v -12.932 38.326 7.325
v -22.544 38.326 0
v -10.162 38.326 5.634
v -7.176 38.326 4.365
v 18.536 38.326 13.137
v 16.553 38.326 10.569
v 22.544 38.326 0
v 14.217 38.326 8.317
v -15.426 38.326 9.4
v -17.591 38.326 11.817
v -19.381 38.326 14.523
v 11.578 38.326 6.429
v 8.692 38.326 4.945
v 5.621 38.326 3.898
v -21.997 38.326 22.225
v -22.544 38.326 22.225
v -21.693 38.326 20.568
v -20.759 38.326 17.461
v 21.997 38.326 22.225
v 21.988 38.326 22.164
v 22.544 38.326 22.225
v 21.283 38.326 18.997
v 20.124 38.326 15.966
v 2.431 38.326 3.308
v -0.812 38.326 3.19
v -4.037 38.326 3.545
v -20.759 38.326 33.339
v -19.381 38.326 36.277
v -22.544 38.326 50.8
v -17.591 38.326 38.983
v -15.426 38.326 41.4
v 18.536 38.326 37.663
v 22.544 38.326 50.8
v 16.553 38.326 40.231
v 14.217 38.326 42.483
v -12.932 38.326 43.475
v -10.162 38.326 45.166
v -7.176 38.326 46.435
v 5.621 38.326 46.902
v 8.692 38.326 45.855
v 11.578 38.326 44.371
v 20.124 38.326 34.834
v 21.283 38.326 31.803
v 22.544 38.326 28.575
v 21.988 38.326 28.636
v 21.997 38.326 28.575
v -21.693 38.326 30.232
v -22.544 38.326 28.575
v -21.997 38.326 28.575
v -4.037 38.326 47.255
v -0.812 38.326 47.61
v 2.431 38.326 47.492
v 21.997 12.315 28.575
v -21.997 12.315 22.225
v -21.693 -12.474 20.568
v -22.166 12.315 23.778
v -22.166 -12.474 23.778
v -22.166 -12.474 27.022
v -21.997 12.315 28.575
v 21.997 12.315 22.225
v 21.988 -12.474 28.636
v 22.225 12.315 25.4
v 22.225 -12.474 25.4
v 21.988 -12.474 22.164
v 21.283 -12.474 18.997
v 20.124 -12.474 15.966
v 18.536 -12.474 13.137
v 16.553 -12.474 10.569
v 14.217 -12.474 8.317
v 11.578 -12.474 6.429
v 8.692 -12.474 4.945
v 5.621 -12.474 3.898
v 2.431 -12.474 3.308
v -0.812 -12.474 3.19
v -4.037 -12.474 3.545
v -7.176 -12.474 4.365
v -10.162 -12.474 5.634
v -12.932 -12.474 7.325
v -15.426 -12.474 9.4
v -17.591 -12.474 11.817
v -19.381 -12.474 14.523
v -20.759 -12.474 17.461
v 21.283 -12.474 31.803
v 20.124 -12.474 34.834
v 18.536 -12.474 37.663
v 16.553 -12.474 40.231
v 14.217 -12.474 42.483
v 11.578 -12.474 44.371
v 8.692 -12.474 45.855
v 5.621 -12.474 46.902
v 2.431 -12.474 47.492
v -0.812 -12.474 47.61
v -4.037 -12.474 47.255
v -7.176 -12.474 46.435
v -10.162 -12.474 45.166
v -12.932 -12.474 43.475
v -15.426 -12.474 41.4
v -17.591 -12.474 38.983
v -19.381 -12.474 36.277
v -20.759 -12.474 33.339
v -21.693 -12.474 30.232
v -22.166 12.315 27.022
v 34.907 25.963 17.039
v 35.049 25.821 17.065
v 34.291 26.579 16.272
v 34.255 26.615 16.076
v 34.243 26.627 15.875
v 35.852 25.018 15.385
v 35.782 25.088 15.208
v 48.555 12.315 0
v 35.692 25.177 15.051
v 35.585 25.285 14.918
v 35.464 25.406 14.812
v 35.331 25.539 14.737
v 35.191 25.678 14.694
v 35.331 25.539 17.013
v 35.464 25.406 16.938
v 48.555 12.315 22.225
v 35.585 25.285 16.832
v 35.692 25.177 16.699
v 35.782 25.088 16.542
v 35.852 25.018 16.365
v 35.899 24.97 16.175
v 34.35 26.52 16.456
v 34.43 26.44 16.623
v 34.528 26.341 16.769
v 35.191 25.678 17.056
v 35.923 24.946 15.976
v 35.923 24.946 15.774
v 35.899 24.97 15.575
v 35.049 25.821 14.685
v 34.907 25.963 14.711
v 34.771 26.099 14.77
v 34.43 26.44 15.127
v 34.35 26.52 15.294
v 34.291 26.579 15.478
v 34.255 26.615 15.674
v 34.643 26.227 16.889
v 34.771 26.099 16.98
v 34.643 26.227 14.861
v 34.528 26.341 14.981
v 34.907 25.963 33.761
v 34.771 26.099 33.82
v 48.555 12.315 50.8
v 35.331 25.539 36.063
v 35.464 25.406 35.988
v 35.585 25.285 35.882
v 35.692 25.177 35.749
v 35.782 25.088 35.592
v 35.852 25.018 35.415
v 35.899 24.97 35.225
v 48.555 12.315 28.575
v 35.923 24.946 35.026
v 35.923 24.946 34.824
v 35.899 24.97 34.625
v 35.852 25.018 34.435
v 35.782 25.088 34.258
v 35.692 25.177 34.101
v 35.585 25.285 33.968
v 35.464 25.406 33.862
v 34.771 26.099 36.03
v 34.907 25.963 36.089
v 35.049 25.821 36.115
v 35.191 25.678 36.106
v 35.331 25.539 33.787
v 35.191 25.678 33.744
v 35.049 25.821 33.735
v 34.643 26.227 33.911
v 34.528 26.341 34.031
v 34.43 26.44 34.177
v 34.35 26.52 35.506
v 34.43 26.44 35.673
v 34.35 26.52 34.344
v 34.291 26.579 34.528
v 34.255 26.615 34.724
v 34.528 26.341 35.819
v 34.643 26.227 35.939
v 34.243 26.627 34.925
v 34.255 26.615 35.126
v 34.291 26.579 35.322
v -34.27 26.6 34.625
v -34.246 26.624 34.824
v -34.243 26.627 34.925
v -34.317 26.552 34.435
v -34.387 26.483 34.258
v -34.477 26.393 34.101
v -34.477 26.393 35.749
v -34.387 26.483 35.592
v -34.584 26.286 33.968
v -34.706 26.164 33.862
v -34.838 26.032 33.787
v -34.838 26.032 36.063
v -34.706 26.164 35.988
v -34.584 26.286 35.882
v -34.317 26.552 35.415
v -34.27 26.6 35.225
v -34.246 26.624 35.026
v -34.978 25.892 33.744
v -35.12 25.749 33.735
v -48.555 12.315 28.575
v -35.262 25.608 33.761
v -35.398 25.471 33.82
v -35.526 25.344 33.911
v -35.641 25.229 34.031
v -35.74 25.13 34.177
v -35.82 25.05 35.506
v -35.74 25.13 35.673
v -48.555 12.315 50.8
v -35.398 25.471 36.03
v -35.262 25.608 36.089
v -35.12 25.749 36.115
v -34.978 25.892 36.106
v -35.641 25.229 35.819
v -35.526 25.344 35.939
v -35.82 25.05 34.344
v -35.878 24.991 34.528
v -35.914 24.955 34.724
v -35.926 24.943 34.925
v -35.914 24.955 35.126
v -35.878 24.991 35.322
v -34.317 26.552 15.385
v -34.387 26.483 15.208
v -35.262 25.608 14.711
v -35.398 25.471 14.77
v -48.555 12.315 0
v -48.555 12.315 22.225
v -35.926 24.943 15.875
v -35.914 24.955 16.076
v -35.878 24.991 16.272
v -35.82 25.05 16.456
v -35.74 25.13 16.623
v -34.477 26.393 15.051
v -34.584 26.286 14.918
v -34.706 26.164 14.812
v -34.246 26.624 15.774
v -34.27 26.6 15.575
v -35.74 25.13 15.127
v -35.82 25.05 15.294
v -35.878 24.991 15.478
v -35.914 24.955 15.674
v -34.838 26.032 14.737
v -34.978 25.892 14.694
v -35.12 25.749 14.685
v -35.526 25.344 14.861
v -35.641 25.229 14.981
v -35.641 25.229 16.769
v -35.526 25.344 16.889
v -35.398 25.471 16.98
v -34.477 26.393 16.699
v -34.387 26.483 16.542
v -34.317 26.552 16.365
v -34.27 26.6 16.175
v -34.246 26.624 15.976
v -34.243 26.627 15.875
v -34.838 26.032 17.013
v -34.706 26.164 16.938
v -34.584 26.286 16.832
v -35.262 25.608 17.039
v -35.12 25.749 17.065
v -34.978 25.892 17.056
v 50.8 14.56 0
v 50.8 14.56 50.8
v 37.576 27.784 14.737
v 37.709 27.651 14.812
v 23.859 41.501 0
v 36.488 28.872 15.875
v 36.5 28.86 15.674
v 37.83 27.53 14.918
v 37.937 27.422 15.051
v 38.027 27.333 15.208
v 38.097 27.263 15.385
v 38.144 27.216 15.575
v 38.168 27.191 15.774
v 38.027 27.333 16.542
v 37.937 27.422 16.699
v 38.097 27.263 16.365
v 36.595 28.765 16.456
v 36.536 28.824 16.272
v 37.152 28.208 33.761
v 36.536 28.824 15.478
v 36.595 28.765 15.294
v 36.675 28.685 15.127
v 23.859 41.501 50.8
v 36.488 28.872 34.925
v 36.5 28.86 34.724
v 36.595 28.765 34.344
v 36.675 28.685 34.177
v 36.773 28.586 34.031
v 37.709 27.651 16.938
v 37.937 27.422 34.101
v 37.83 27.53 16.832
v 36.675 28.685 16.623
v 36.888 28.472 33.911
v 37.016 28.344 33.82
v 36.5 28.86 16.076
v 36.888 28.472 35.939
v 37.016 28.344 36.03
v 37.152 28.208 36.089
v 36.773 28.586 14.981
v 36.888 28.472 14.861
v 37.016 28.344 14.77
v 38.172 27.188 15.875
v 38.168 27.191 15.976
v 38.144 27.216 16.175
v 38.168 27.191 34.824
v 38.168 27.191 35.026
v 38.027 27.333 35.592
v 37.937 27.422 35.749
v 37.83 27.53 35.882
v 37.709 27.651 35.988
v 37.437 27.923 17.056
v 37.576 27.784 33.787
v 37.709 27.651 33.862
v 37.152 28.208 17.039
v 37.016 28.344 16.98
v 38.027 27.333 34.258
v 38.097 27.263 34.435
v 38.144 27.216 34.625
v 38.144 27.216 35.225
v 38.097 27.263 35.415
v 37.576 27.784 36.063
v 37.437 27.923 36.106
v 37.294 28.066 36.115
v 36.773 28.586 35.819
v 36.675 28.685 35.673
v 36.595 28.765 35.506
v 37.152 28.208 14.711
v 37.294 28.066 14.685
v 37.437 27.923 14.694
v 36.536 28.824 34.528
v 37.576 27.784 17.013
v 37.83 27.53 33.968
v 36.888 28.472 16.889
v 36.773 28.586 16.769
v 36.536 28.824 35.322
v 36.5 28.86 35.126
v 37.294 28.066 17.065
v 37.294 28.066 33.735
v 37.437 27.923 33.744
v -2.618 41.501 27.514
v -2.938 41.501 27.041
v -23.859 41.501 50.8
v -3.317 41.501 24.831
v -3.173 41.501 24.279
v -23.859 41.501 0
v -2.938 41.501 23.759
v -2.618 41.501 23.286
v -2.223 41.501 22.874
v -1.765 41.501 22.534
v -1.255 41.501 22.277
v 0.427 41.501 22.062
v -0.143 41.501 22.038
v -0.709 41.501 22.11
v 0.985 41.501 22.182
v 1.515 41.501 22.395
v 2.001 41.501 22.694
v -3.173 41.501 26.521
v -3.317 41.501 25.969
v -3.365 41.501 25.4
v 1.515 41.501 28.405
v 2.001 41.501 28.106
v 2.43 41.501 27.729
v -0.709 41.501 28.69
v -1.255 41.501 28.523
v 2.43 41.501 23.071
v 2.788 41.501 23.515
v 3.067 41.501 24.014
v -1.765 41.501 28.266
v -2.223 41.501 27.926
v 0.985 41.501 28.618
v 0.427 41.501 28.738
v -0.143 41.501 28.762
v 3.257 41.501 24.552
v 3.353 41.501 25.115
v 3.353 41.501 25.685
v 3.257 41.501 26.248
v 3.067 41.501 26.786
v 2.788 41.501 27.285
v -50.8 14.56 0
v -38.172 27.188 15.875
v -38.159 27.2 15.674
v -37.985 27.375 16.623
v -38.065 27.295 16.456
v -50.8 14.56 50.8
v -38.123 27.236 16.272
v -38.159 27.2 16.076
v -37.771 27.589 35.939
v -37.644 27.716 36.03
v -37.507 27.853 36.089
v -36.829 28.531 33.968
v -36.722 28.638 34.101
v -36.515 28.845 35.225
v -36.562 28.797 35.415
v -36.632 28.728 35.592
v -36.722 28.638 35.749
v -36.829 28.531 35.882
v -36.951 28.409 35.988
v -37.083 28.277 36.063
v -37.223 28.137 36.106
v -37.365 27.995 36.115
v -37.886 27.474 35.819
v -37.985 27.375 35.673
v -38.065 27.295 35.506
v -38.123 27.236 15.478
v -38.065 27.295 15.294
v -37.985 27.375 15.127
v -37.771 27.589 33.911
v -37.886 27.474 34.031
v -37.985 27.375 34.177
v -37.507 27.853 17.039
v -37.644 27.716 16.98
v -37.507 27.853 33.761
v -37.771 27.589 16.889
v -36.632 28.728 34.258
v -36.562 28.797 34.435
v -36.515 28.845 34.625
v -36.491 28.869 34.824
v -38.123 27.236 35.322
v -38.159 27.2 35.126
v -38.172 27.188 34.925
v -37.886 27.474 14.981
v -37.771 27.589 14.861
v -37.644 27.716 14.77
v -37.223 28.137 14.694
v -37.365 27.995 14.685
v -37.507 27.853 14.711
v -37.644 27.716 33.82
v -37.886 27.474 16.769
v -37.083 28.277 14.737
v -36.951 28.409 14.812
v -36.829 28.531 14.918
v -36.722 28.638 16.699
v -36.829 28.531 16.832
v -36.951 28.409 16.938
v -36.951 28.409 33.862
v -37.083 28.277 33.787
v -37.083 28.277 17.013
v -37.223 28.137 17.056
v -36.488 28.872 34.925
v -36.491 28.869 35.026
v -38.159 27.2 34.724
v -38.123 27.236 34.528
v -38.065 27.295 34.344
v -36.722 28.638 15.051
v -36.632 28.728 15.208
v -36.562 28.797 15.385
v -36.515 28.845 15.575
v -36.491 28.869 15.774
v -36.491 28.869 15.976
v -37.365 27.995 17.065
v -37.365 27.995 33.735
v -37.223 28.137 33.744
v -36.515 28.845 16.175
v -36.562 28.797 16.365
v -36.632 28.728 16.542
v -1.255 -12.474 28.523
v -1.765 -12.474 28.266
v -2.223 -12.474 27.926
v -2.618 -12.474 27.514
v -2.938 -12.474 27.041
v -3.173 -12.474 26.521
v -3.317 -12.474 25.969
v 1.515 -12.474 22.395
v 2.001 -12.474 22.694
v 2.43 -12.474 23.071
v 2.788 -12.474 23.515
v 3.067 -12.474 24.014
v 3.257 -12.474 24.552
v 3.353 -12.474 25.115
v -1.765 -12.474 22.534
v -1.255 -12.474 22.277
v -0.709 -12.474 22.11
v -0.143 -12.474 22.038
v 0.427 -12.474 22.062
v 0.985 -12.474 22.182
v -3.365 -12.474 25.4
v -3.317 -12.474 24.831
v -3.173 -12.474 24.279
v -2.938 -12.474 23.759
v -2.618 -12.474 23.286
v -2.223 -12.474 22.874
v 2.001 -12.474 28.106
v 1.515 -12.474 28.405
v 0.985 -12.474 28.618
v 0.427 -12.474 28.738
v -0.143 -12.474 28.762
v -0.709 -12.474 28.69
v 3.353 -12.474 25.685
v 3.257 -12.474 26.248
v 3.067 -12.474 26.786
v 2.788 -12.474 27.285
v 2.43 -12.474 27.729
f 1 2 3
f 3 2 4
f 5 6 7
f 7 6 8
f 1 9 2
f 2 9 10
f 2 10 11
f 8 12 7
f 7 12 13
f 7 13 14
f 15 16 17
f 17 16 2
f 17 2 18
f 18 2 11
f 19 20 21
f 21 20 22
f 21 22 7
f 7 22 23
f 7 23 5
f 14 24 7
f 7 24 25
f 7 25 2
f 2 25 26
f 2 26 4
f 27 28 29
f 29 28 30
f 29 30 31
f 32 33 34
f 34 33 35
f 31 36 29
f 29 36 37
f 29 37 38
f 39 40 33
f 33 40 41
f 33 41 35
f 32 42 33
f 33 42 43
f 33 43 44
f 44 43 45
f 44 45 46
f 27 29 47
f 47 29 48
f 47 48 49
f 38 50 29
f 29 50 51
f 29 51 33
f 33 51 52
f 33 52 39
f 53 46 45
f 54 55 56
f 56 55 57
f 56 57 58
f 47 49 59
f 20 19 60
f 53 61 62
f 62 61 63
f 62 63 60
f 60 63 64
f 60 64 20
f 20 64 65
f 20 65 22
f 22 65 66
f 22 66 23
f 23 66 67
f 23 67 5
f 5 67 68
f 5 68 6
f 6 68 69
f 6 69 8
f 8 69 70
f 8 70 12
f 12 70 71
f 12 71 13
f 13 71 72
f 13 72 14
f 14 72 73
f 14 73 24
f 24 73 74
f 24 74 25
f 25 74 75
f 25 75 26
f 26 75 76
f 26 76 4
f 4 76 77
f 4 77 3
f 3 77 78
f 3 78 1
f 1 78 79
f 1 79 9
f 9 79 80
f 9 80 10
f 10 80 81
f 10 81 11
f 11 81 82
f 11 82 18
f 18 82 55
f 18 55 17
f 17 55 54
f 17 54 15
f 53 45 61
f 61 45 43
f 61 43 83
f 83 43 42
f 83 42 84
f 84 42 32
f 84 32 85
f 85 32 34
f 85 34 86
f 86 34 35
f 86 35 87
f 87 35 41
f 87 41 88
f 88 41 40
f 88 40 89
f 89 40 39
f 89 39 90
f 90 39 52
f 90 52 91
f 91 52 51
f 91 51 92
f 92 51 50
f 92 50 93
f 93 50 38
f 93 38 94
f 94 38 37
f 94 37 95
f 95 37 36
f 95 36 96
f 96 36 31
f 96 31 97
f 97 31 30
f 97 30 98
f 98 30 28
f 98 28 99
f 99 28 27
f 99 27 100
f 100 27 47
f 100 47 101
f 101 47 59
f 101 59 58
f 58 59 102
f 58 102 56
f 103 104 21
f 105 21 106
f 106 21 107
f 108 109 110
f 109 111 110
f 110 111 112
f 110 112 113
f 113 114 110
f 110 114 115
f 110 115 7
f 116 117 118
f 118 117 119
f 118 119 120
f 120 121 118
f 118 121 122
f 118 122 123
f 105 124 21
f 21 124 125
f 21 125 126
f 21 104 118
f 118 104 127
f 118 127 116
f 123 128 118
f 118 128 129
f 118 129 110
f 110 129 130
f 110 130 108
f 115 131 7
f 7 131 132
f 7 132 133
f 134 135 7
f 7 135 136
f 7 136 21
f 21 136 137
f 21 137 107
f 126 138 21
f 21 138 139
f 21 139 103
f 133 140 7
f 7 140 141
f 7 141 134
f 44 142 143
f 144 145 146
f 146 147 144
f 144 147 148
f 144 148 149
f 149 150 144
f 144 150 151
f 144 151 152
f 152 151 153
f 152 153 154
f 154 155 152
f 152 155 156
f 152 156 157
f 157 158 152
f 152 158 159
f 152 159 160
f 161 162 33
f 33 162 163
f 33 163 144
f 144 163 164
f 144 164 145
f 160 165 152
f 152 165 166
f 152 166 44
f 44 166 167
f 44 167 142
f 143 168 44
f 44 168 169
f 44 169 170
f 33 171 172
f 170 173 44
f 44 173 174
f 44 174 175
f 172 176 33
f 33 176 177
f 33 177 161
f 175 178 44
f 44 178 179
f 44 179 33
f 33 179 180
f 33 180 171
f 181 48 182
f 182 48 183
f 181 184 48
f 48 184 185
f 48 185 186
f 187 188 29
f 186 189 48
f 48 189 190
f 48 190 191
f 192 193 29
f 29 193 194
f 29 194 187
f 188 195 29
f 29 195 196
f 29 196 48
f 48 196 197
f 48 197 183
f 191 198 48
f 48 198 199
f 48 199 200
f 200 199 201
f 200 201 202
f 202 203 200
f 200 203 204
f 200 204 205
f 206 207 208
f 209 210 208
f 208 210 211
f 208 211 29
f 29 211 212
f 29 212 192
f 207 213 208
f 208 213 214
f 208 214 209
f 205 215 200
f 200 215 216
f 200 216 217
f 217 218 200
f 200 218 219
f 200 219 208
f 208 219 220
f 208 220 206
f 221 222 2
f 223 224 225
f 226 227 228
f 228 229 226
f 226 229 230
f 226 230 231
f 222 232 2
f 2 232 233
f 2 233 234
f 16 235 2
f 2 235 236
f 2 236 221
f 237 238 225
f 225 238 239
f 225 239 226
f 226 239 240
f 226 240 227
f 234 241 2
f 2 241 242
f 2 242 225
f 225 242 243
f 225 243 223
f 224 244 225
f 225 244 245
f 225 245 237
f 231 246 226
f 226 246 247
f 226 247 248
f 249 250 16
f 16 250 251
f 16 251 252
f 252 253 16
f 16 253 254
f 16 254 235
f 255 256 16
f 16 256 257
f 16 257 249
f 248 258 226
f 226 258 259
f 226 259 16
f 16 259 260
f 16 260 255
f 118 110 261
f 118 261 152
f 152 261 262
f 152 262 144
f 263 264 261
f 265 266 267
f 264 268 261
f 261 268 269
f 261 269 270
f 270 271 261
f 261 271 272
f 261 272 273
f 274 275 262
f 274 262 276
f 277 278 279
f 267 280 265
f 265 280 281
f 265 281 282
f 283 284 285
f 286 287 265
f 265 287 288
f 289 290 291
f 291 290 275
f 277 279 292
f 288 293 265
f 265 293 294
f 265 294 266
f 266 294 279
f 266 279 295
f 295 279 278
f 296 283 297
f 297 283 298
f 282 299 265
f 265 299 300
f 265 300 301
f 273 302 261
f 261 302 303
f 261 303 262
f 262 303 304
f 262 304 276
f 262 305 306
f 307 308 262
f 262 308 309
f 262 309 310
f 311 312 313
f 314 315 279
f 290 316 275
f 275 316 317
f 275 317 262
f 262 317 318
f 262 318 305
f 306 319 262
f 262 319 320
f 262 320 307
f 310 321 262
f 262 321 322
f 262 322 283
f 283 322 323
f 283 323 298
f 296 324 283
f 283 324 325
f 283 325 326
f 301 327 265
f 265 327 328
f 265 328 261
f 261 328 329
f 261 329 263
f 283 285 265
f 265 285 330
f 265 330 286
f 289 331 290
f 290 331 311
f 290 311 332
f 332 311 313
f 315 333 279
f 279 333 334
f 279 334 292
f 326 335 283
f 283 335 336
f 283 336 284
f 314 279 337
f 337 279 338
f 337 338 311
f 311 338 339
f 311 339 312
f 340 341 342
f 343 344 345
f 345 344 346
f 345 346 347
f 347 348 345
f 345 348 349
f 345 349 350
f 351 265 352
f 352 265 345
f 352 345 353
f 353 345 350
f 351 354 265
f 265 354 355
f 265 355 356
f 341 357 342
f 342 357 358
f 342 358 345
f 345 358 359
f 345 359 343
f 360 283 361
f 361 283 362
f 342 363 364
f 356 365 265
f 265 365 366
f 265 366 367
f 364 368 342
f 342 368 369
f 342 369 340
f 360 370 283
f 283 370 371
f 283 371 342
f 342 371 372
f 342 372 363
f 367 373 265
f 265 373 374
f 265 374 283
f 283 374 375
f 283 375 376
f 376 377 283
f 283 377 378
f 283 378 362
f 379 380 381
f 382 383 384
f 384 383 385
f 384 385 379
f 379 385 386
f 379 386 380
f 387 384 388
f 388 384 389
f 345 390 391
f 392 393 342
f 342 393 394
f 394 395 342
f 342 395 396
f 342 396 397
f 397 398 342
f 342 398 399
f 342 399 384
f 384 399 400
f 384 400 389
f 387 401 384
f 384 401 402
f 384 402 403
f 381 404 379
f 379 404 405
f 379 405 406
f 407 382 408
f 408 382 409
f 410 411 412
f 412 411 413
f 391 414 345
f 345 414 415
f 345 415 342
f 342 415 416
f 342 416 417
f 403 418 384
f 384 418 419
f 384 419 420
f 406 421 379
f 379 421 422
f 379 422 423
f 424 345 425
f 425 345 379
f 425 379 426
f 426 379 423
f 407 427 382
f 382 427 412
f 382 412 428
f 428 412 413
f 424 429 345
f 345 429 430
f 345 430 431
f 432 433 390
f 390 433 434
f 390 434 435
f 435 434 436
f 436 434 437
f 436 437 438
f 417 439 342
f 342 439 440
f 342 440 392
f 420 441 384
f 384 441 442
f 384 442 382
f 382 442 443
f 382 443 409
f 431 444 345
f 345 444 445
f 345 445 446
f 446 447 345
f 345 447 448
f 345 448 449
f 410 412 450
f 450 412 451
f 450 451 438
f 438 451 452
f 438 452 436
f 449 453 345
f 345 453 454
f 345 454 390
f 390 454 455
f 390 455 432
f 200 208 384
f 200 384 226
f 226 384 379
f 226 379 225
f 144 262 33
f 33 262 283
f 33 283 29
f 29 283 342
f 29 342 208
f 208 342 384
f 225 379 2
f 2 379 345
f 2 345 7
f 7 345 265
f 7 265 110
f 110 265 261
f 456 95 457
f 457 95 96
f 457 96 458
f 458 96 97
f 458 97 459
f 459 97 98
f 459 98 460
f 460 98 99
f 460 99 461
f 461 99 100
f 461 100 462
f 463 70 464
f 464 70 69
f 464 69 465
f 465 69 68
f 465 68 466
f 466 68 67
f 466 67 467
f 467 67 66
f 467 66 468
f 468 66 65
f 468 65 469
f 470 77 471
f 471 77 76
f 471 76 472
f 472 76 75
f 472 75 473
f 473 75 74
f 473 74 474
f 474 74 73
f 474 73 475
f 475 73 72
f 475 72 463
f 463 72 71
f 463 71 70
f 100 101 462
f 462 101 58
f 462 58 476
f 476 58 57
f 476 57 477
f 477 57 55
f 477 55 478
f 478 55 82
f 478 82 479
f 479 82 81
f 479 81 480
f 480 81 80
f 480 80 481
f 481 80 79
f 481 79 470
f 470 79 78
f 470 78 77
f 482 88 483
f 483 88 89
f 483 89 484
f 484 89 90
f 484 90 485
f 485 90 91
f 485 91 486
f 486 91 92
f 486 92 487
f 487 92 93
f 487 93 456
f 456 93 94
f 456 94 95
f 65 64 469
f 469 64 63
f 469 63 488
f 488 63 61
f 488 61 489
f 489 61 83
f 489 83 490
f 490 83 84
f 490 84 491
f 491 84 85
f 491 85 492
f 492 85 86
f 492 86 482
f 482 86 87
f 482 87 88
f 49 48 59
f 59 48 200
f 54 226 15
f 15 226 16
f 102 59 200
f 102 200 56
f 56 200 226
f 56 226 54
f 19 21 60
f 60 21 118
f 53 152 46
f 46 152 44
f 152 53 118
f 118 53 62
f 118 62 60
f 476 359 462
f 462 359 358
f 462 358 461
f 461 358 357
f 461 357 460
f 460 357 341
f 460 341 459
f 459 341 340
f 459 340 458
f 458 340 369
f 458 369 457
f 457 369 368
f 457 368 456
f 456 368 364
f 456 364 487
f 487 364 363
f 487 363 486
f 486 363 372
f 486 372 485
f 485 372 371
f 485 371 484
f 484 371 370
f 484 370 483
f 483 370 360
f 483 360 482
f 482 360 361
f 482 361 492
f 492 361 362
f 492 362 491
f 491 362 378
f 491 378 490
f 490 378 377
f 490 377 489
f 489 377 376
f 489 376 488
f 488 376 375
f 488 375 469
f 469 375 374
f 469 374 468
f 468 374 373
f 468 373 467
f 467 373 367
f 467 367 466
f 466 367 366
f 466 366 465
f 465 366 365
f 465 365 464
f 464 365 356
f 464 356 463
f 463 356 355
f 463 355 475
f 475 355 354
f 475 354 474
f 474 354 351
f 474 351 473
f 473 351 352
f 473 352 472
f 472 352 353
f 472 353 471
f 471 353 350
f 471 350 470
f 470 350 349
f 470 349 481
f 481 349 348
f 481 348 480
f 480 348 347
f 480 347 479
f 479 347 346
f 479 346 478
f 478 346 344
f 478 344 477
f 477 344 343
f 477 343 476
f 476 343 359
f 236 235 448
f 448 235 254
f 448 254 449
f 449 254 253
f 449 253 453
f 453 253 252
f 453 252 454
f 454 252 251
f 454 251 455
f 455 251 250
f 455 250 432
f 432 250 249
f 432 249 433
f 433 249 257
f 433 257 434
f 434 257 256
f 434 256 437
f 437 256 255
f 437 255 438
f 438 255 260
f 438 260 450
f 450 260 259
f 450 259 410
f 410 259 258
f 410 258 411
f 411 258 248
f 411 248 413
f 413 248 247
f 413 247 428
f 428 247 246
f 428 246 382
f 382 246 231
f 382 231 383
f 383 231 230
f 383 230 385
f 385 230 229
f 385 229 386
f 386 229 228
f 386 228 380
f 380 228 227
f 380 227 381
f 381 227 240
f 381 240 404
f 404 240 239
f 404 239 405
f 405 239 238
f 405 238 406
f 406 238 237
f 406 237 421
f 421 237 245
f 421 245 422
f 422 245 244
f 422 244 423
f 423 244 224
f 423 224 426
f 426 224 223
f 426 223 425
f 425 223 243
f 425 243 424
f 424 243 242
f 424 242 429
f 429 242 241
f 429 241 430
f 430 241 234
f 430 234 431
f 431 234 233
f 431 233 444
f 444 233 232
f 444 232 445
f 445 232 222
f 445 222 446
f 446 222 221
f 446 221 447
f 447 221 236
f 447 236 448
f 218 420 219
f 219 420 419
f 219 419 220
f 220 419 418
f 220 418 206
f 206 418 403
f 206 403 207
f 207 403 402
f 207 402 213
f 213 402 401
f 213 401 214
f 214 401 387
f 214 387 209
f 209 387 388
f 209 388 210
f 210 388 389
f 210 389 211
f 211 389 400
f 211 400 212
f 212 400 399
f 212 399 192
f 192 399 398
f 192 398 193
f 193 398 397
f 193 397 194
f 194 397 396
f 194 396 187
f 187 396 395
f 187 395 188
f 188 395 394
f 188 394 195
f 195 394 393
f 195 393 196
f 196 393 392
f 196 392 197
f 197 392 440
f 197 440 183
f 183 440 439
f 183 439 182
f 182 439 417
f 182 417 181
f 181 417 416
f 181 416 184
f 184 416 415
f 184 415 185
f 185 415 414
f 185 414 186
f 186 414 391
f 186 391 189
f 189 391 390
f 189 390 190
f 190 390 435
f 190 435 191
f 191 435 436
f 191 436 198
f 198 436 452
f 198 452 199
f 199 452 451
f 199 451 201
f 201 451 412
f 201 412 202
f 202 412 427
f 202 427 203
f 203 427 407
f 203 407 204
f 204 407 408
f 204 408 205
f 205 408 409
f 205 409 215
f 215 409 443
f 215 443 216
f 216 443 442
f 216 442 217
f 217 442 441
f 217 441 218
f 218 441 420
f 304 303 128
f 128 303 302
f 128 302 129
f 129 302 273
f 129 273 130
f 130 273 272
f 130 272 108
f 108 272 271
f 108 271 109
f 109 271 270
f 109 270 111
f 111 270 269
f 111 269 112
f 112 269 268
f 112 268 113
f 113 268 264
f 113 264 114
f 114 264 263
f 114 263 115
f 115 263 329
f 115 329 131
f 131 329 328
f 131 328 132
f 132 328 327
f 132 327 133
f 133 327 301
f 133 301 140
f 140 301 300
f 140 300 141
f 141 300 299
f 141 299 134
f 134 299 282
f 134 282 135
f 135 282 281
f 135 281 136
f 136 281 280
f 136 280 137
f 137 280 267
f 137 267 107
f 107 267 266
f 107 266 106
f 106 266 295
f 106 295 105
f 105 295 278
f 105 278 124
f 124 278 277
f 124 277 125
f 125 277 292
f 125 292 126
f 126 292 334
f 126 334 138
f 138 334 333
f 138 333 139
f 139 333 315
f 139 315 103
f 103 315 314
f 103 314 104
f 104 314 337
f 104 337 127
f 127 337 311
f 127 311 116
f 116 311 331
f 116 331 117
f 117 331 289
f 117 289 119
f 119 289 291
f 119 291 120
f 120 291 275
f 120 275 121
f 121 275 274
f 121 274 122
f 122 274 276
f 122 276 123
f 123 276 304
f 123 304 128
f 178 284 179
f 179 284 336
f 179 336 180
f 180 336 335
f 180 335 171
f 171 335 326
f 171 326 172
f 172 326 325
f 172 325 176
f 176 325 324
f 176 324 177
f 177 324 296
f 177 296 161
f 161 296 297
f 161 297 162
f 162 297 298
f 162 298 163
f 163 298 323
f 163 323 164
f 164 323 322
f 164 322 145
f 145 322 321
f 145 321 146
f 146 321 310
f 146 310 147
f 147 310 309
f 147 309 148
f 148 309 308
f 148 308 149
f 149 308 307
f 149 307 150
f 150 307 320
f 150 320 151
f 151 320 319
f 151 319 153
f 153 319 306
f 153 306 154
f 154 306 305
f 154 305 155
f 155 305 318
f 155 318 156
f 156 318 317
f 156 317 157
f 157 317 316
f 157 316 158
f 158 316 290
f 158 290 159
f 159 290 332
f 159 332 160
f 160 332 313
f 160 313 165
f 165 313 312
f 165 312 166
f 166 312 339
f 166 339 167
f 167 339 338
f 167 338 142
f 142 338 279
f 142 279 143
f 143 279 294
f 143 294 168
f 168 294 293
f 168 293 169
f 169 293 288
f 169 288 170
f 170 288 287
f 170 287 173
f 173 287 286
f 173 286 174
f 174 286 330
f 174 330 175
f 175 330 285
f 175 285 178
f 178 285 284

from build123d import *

# Parameters (mm, degrees)
BOSS_EXTRUDE1_DEPTH = 50.8
BOSS_EXTRUDE3_START = 50.8
SKETCH4_R           = 22.225
BOSS_EXTRUDE3_DEPTH = 50.8
SKETCH8_W           = 6.35
SKETCH8_H           = 36.78487194
BOSS_EXTRUDE5_DEPTH = 26.649040147
CIRPATTERN2_COUNT   = 2
CIRPATTERN2_ANGLE   = 180
SKETCH9_R           = 3.3655
CUT_EXTRUDE1_DEPTH  = 90.858670283
CUT_EXTRUDE2_REACH  = 109.65
SKETCH10_R          = 1.190625


with BuildPart() as part:
    # Sketch1 → Boss-Extrude1 (new body)
    with BuildSketch(Plane.XY):
        Polygon((-50.8, 14.559871939), (-23.859231637, 41.500640303), (23.859231637, 41.500640303), (50.8, 14.559871939), (48.55493597, 12.314807909), (22.544103576, 38.325640303), (-22.544103576, 38.325640303), (-48.55493597, 12.314807909), align=None)
    extrude(amount=BOSS_EXTRUDE1_DEPTH)

    # Sketch4 → Boss-Extrude3 (add)
    with BuildSketch(Plane.XZ.offset(-38.325640303).offset(BOSS_EXTRUDE3_START)):
        with Locations((0, 25.4)):
            Circle(SKETCH4_R)
    extrude(amount=-BOSS_EXTRUDE3_DEPTH)

    # Sketch8 → Boss-Extrude5 (add, along a direction that is not the sketch's normal)
    with BuildSketch(Plane(origin=(-30.434871939, 30.434871939, 0), x_dir=(0, 0, -1), z_dir=(0.7071067811865515, -0.7071067811865436, 0))):
        with Locations((-25.4, -7.233204333)):
            Rectangle(SKETCH8_W, SKETCH8_H)
    boss_extrude5 = extrude(amount=BOSS_EXTRUDE5_DEPTH, dir=(1, 0, 0))

    # CirPattern2: Boss-Extrude5 ×2 about axis
    cirpattern2_axis = Axis((0, 101.18743315, 25.4), (0, -1, 0))
    for i in range(1, CIRPATTERN2_COUNT):
        add(boss_extrude5.rotate(cirpattern2_axis, i * CIRPATTERN2_ANGLE / (CIRPATTERN2_COUNT - 1)))

    # Sketch9 → Cut-Extrude1 (cut, through all)
    with BuildSketch(Plane(origin=(0, 41.500640303, 0), x_dir=(1, 0, 0), z_dir=(0, 1, 0))):
        with Locations(Location((0, -25.4, 0), (0, 0, 180))):
            Circle(SKETCH9_R)
    extrude(amount=-CUT_EXTRUDE1_DEPTH, mode=Mode.SUBTRACT)

    # Sketch10 → Cut-Extrude2 (cut, up to next)
    with BuildSketch(Plane(origin=(-32.67993597, 32.67993597, 0), x_dir=(0, 0, 1), z_dir=(-0.7071067811865517, 0.7071067811865434, 0)), mode=Mode.PRIVATE) as cut_extrude2_sk1:
        with Locations(Location((15.875, -6.575640303, 0), (0, 0, 270))):
            Circle(SKETCH10_R)
    cut_extrude2_tool1 = extrude(cut_extrude2_sk1.sketch, amount=-CUT_EXTRUDE2_REACH, mode=Mode.PRIVATE) & part.part
    # Sketch10 → Cut-Extrude2 (cut, up to next)
    with BuildSketch(Plane(origin=(-32.67993597, 32.67993597, 0), x_dir=(0, 0, 1), z_dir=(-0.7071067811865517, 0.7071067811865434, 0)), mode=Mode.PRIVATE) as cut_extrude2_sk2:
        with Locations(Location((34.925, -6.575640303, 0), (0, 0, 270))):
            Circle(SKETCH10_R)
    cut_extrude2_tool2 = extrude(cut_extrude2_sk2.sketch, amount=-CUT_EXTRUDE2_REACH, mode=Mode.PRIVATE) & part.part
    cut_extrude2_1 = cut_extrude2_tool1.solids().sort_by_distance((-37.329616, 28.030256, 15.875))[0]
    add(cut_extrude2_1, mode=Mode.SUBTRACT)
    cut_extrude2_2 = cut_extrude2_tool2.solids().sort_by_distance((-37.329616, 28.030256, 34.925))[0]
    add(cut_extrude2_2, mode=Mode.SUBTRACT)
    cut_extrude2 = cut_extrude2_1 + cut_extrude2_2  # Cut-Extrude2 as one shape, for the pattern or mirror that repeats it

    # Mirror2: Cut-Extrude2 across plane
    add(cut_extrude2.mirror(Plane(origin=(0, 0, 0), x_dir=(0, 0, 1), z_dir=(1, 0, 0))), mode=Mode.SUBTRACT)


solid = part.part
